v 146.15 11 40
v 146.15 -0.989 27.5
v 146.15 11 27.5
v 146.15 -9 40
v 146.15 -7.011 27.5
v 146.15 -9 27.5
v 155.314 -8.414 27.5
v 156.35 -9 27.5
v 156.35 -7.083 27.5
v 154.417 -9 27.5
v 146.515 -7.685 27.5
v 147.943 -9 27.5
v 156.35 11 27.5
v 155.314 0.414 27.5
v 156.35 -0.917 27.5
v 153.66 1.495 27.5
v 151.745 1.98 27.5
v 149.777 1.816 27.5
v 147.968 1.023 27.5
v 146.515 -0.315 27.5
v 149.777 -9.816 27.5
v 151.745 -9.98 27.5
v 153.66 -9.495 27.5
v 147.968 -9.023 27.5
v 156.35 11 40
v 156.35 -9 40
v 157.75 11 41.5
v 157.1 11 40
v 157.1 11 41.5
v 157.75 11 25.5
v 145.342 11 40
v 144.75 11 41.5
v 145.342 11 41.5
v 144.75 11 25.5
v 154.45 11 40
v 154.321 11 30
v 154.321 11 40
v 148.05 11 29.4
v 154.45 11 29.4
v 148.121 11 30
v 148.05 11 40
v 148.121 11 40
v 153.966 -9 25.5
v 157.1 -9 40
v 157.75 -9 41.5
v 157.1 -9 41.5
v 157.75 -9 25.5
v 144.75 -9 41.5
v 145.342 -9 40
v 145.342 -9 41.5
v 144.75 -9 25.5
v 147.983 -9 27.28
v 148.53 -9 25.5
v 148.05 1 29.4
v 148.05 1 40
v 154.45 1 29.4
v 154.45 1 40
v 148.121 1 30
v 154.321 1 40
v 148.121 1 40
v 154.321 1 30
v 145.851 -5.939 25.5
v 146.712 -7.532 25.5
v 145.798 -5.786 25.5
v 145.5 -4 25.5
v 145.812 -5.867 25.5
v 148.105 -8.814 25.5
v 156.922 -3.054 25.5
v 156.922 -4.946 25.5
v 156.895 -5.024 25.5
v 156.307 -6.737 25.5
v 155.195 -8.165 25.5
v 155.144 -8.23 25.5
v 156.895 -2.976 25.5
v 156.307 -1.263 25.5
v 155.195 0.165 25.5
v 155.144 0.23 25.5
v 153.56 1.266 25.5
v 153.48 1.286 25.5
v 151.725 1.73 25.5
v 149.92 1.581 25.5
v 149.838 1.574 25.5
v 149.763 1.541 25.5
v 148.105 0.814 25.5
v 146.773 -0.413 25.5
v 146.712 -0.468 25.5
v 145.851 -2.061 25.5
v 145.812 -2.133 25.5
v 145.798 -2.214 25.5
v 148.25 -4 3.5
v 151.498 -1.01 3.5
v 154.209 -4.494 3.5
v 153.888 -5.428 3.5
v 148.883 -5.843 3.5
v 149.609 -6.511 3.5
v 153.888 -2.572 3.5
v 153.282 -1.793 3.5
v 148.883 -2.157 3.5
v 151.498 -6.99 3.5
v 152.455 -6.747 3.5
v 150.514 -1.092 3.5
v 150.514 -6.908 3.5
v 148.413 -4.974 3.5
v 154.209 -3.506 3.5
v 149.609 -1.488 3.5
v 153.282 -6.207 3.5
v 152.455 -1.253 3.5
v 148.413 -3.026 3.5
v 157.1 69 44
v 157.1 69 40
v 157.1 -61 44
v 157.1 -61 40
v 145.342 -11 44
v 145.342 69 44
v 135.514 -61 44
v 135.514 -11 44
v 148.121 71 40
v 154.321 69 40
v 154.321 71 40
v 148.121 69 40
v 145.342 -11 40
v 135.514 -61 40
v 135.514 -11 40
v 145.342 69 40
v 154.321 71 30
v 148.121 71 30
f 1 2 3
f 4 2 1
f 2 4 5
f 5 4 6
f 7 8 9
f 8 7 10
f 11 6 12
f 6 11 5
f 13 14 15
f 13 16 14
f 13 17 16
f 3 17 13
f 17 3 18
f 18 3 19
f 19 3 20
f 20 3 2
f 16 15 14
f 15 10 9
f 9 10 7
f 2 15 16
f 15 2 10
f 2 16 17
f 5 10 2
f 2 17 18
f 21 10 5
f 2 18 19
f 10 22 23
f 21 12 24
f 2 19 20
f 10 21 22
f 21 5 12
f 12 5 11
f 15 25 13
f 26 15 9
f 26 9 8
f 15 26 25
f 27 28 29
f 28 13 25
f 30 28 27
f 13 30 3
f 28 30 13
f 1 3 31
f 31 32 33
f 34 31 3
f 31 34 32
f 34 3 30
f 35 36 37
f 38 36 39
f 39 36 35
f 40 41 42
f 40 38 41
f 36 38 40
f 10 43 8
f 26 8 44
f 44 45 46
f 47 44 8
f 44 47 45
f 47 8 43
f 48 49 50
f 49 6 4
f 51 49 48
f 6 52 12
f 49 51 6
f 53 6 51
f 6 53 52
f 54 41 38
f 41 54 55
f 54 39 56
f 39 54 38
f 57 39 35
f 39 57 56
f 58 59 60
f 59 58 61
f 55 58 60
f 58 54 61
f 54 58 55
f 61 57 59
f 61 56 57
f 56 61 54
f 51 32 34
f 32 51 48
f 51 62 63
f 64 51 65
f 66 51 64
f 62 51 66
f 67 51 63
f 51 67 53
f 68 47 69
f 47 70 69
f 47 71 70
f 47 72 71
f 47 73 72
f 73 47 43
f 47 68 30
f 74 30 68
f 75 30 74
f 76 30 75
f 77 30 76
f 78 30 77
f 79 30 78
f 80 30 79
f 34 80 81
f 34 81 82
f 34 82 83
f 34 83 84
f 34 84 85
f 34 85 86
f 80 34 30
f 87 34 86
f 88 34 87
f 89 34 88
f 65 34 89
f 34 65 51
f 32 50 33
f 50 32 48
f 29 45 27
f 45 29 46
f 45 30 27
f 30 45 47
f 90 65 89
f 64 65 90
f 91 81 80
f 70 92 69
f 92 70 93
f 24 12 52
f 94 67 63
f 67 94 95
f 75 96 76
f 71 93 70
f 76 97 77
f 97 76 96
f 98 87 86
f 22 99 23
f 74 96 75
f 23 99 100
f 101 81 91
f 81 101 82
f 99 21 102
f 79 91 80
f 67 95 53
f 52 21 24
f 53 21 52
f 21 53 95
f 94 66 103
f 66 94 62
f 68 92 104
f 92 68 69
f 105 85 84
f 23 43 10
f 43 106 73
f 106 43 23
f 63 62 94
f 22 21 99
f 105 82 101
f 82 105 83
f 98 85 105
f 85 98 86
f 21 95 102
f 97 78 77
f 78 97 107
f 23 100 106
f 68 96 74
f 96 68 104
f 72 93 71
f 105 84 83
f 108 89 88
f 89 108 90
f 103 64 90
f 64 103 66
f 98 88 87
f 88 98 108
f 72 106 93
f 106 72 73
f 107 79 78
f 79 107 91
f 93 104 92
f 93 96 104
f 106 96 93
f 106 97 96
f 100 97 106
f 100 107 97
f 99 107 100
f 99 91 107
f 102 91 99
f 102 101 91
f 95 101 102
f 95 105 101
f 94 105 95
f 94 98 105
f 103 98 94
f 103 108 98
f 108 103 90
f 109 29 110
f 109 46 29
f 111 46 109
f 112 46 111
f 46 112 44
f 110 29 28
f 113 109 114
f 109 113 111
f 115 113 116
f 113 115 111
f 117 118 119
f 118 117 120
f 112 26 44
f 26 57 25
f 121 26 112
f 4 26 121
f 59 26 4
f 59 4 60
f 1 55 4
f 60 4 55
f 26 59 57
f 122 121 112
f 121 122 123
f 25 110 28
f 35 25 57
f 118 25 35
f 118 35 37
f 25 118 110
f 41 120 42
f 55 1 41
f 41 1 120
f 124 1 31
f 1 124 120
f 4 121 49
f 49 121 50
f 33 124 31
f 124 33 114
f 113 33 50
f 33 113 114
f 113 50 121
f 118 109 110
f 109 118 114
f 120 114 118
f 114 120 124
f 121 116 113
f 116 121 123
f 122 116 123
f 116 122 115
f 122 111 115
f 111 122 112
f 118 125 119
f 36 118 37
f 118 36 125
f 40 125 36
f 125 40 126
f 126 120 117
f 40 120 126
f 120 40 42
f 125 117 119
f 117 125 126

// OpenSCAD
// file: irkem_hammerTips_v0.scad
tol = 0.2;
extrWall = 1.7+tol;
extrH = 12.9+tol;//12.6+tol;
extrW = 10+tol;

hammerY = 20;
hammerZ = 24;

module hammerTips(){
translate([0,-5,0]) cylinder(hammerZ,6,3);
difference(){
    translate([-6.5,-10,-14]) cube([13,hammerY,16]);
    union(){uChan();translate([-extrW/2,-hammerY/2,-extrH]) cube([extrW,hammerY/2,extrH]);
}
}
module uChan(){
difference(){
    translate([-extrW/2,-hammerY/2,-extrH]) cube([extrW,hammerY,extrH]);
    translate([-extrW/2+extrWall,-hammerY/2,-extrH-extrWall]) cube([extrW-2*extrWall,hammerY,extrH]);
}
}
}

//hammerTips();
// main file
include <irkem_hammerTips_v0.scad>

xO = -6;
yO = -11;
zO = 40;

kH = 4;
bH = 10;
wL = 50;
bL = 80;
oct = 6.5 * 25.4;
gap = 2;
n_oct = 1;//5;
n_keys = 12 * n_oct;
oset = -1;

sharpFlag = 1;

for (k = [11]){//:1:(n_keys-1)]){
    //
    translate([k*13.75+6.0+xO,12+yO,-12.5+zO]) rotate([0,180,0]) hammerTips();
}

for (k = [0:1:(n_oct-1)]){

//C:
//color("ivory") translate([k*oct+0+xO,0+yO,0+zO]) cube([oct*1/12-gap,bL,kH]);
//color("ivory") translate([k*oct+0+xO,-wL+yO,0+zO]) cube([oct*1/7-gap,wL,kH]);

////C#:
//if (sharpFlag){    
//color("black") translate([k*oct+oct*1/12+xO,gap+yO,0+zO]) cube([oct*1/12-gap,bL,kH+bH]);
//}//

////D:
//color("ivory") translate([k*oct+oct*2/12+xO,0+yO,0+zO]) cube([oct*1/12-gap,bL,kH]);
//color("ivory") translate([k*oct+oct*1/7+xO,-wL+yO,0+zO]) cube([oct*1/7-gap,wL,kH]);//

////D#:
//if (sharpFlag){
//color("black") translate([k*oct+oct*3/12+xO,gap+yO,0+zO]) cube([oct*1/12-gap,bL,kH+bH]);
//}//

////E:
//color("ivory") translate([k*oct+oct*4/12+xO,0+yO,0+zO]) cube([2+oct*1/12-gap,bL,kH]);
//color("ivory") translate([k*oct+oct*2/7+xO,-wL+yO,0+zO]) cube([oct*1/7-gap,wL,kH]);//

////F:
//color("ivory") difference(){
//    translate([k*oct+oct*3/7+xO,-wL+yO,0+zO]) cube([oct*1/7-gap,wL+bL,kH]);
//    translate([k*oct+oct*6/12-2+xO,0+yO,0+zO]) cube([4+oct*(1/7-1/12)-gap,bL,kH]);
//}
//color("ivory") translate([k*oct+oct*3/7+xO,-wL+yO,0+zO]) cube([oct*1/7-gap,wL,kH]);//

////F#:
//if (sharpFlag){
//color("black") translate([k*oct+oct*6/12+xO,gap+yO,0+zO]) cube([oct*1/12-gap,bL,kH+bH]);
//}//

////G:
//color("ivory") translate([k*oct+oct*7/12+xO,0+yO,0+zO]) cube([oct*1/12-gap,bL,kH]);
//color("ivory") translate([k*oct+oct*4/7+xO,-wL+yO,0+zO]) cube([oct*1/7-gap,wL,kH]);//

////G#:
//if (sharpFlag){
//color("black") translate([k*oct+oct*8/12+xO,gap+yO,0+zO]) cube([oct*1/12-gap,bL,kH+bH]);
//}//

////A:
//color("ivory") translate([k*oct+oct*9/12+xO,0+yO,0+zO]) cube([oct*1/12-gap,bL,kH]);
//color("ivory") translate([k*oct+oct*5/7+xO,-wL+yO,0+zO]) cube([oct*1/7-gap,wL,kH]);//

////A#:
//if (sharpFlag){
//color("black") translate([k*oct+oct*10/12+xO,gap+yO,0+zO]) cube([oct*1/12-gap,bL,kH+bH]);
//}//

////B:
color("ivory") translate([k*oct+oct*11/12+xO,0+yO,0+zO]) cube([oct*1/12-gap,bL,kH]);
color("ivory") translate([k*oct+oct*6/7+xO,-wL+yO,0+zO]) cube([oct*1/7-gap,wL,kH]);//

}

for (i = [11]){//,2,4,5,7,9,11]){//[0:1:(n_keys-1)]){
    translate([oset+oct*i/12+(oct*1/12-6.2)/2+xO,2+10+yO,-10+zO]) cube([6.2,bL-10,10]);
}

//if (sharpFlag){
//    for (i = [1,3,6,8,10]){//[0:1:(n_keys-1)]){
//    translate([oset+oct*i/12+(oct*1/12-6.2)/2+xO,2+10+yO,-10+zO]) cube([6.2,bL-10,10]);
//}
//}
